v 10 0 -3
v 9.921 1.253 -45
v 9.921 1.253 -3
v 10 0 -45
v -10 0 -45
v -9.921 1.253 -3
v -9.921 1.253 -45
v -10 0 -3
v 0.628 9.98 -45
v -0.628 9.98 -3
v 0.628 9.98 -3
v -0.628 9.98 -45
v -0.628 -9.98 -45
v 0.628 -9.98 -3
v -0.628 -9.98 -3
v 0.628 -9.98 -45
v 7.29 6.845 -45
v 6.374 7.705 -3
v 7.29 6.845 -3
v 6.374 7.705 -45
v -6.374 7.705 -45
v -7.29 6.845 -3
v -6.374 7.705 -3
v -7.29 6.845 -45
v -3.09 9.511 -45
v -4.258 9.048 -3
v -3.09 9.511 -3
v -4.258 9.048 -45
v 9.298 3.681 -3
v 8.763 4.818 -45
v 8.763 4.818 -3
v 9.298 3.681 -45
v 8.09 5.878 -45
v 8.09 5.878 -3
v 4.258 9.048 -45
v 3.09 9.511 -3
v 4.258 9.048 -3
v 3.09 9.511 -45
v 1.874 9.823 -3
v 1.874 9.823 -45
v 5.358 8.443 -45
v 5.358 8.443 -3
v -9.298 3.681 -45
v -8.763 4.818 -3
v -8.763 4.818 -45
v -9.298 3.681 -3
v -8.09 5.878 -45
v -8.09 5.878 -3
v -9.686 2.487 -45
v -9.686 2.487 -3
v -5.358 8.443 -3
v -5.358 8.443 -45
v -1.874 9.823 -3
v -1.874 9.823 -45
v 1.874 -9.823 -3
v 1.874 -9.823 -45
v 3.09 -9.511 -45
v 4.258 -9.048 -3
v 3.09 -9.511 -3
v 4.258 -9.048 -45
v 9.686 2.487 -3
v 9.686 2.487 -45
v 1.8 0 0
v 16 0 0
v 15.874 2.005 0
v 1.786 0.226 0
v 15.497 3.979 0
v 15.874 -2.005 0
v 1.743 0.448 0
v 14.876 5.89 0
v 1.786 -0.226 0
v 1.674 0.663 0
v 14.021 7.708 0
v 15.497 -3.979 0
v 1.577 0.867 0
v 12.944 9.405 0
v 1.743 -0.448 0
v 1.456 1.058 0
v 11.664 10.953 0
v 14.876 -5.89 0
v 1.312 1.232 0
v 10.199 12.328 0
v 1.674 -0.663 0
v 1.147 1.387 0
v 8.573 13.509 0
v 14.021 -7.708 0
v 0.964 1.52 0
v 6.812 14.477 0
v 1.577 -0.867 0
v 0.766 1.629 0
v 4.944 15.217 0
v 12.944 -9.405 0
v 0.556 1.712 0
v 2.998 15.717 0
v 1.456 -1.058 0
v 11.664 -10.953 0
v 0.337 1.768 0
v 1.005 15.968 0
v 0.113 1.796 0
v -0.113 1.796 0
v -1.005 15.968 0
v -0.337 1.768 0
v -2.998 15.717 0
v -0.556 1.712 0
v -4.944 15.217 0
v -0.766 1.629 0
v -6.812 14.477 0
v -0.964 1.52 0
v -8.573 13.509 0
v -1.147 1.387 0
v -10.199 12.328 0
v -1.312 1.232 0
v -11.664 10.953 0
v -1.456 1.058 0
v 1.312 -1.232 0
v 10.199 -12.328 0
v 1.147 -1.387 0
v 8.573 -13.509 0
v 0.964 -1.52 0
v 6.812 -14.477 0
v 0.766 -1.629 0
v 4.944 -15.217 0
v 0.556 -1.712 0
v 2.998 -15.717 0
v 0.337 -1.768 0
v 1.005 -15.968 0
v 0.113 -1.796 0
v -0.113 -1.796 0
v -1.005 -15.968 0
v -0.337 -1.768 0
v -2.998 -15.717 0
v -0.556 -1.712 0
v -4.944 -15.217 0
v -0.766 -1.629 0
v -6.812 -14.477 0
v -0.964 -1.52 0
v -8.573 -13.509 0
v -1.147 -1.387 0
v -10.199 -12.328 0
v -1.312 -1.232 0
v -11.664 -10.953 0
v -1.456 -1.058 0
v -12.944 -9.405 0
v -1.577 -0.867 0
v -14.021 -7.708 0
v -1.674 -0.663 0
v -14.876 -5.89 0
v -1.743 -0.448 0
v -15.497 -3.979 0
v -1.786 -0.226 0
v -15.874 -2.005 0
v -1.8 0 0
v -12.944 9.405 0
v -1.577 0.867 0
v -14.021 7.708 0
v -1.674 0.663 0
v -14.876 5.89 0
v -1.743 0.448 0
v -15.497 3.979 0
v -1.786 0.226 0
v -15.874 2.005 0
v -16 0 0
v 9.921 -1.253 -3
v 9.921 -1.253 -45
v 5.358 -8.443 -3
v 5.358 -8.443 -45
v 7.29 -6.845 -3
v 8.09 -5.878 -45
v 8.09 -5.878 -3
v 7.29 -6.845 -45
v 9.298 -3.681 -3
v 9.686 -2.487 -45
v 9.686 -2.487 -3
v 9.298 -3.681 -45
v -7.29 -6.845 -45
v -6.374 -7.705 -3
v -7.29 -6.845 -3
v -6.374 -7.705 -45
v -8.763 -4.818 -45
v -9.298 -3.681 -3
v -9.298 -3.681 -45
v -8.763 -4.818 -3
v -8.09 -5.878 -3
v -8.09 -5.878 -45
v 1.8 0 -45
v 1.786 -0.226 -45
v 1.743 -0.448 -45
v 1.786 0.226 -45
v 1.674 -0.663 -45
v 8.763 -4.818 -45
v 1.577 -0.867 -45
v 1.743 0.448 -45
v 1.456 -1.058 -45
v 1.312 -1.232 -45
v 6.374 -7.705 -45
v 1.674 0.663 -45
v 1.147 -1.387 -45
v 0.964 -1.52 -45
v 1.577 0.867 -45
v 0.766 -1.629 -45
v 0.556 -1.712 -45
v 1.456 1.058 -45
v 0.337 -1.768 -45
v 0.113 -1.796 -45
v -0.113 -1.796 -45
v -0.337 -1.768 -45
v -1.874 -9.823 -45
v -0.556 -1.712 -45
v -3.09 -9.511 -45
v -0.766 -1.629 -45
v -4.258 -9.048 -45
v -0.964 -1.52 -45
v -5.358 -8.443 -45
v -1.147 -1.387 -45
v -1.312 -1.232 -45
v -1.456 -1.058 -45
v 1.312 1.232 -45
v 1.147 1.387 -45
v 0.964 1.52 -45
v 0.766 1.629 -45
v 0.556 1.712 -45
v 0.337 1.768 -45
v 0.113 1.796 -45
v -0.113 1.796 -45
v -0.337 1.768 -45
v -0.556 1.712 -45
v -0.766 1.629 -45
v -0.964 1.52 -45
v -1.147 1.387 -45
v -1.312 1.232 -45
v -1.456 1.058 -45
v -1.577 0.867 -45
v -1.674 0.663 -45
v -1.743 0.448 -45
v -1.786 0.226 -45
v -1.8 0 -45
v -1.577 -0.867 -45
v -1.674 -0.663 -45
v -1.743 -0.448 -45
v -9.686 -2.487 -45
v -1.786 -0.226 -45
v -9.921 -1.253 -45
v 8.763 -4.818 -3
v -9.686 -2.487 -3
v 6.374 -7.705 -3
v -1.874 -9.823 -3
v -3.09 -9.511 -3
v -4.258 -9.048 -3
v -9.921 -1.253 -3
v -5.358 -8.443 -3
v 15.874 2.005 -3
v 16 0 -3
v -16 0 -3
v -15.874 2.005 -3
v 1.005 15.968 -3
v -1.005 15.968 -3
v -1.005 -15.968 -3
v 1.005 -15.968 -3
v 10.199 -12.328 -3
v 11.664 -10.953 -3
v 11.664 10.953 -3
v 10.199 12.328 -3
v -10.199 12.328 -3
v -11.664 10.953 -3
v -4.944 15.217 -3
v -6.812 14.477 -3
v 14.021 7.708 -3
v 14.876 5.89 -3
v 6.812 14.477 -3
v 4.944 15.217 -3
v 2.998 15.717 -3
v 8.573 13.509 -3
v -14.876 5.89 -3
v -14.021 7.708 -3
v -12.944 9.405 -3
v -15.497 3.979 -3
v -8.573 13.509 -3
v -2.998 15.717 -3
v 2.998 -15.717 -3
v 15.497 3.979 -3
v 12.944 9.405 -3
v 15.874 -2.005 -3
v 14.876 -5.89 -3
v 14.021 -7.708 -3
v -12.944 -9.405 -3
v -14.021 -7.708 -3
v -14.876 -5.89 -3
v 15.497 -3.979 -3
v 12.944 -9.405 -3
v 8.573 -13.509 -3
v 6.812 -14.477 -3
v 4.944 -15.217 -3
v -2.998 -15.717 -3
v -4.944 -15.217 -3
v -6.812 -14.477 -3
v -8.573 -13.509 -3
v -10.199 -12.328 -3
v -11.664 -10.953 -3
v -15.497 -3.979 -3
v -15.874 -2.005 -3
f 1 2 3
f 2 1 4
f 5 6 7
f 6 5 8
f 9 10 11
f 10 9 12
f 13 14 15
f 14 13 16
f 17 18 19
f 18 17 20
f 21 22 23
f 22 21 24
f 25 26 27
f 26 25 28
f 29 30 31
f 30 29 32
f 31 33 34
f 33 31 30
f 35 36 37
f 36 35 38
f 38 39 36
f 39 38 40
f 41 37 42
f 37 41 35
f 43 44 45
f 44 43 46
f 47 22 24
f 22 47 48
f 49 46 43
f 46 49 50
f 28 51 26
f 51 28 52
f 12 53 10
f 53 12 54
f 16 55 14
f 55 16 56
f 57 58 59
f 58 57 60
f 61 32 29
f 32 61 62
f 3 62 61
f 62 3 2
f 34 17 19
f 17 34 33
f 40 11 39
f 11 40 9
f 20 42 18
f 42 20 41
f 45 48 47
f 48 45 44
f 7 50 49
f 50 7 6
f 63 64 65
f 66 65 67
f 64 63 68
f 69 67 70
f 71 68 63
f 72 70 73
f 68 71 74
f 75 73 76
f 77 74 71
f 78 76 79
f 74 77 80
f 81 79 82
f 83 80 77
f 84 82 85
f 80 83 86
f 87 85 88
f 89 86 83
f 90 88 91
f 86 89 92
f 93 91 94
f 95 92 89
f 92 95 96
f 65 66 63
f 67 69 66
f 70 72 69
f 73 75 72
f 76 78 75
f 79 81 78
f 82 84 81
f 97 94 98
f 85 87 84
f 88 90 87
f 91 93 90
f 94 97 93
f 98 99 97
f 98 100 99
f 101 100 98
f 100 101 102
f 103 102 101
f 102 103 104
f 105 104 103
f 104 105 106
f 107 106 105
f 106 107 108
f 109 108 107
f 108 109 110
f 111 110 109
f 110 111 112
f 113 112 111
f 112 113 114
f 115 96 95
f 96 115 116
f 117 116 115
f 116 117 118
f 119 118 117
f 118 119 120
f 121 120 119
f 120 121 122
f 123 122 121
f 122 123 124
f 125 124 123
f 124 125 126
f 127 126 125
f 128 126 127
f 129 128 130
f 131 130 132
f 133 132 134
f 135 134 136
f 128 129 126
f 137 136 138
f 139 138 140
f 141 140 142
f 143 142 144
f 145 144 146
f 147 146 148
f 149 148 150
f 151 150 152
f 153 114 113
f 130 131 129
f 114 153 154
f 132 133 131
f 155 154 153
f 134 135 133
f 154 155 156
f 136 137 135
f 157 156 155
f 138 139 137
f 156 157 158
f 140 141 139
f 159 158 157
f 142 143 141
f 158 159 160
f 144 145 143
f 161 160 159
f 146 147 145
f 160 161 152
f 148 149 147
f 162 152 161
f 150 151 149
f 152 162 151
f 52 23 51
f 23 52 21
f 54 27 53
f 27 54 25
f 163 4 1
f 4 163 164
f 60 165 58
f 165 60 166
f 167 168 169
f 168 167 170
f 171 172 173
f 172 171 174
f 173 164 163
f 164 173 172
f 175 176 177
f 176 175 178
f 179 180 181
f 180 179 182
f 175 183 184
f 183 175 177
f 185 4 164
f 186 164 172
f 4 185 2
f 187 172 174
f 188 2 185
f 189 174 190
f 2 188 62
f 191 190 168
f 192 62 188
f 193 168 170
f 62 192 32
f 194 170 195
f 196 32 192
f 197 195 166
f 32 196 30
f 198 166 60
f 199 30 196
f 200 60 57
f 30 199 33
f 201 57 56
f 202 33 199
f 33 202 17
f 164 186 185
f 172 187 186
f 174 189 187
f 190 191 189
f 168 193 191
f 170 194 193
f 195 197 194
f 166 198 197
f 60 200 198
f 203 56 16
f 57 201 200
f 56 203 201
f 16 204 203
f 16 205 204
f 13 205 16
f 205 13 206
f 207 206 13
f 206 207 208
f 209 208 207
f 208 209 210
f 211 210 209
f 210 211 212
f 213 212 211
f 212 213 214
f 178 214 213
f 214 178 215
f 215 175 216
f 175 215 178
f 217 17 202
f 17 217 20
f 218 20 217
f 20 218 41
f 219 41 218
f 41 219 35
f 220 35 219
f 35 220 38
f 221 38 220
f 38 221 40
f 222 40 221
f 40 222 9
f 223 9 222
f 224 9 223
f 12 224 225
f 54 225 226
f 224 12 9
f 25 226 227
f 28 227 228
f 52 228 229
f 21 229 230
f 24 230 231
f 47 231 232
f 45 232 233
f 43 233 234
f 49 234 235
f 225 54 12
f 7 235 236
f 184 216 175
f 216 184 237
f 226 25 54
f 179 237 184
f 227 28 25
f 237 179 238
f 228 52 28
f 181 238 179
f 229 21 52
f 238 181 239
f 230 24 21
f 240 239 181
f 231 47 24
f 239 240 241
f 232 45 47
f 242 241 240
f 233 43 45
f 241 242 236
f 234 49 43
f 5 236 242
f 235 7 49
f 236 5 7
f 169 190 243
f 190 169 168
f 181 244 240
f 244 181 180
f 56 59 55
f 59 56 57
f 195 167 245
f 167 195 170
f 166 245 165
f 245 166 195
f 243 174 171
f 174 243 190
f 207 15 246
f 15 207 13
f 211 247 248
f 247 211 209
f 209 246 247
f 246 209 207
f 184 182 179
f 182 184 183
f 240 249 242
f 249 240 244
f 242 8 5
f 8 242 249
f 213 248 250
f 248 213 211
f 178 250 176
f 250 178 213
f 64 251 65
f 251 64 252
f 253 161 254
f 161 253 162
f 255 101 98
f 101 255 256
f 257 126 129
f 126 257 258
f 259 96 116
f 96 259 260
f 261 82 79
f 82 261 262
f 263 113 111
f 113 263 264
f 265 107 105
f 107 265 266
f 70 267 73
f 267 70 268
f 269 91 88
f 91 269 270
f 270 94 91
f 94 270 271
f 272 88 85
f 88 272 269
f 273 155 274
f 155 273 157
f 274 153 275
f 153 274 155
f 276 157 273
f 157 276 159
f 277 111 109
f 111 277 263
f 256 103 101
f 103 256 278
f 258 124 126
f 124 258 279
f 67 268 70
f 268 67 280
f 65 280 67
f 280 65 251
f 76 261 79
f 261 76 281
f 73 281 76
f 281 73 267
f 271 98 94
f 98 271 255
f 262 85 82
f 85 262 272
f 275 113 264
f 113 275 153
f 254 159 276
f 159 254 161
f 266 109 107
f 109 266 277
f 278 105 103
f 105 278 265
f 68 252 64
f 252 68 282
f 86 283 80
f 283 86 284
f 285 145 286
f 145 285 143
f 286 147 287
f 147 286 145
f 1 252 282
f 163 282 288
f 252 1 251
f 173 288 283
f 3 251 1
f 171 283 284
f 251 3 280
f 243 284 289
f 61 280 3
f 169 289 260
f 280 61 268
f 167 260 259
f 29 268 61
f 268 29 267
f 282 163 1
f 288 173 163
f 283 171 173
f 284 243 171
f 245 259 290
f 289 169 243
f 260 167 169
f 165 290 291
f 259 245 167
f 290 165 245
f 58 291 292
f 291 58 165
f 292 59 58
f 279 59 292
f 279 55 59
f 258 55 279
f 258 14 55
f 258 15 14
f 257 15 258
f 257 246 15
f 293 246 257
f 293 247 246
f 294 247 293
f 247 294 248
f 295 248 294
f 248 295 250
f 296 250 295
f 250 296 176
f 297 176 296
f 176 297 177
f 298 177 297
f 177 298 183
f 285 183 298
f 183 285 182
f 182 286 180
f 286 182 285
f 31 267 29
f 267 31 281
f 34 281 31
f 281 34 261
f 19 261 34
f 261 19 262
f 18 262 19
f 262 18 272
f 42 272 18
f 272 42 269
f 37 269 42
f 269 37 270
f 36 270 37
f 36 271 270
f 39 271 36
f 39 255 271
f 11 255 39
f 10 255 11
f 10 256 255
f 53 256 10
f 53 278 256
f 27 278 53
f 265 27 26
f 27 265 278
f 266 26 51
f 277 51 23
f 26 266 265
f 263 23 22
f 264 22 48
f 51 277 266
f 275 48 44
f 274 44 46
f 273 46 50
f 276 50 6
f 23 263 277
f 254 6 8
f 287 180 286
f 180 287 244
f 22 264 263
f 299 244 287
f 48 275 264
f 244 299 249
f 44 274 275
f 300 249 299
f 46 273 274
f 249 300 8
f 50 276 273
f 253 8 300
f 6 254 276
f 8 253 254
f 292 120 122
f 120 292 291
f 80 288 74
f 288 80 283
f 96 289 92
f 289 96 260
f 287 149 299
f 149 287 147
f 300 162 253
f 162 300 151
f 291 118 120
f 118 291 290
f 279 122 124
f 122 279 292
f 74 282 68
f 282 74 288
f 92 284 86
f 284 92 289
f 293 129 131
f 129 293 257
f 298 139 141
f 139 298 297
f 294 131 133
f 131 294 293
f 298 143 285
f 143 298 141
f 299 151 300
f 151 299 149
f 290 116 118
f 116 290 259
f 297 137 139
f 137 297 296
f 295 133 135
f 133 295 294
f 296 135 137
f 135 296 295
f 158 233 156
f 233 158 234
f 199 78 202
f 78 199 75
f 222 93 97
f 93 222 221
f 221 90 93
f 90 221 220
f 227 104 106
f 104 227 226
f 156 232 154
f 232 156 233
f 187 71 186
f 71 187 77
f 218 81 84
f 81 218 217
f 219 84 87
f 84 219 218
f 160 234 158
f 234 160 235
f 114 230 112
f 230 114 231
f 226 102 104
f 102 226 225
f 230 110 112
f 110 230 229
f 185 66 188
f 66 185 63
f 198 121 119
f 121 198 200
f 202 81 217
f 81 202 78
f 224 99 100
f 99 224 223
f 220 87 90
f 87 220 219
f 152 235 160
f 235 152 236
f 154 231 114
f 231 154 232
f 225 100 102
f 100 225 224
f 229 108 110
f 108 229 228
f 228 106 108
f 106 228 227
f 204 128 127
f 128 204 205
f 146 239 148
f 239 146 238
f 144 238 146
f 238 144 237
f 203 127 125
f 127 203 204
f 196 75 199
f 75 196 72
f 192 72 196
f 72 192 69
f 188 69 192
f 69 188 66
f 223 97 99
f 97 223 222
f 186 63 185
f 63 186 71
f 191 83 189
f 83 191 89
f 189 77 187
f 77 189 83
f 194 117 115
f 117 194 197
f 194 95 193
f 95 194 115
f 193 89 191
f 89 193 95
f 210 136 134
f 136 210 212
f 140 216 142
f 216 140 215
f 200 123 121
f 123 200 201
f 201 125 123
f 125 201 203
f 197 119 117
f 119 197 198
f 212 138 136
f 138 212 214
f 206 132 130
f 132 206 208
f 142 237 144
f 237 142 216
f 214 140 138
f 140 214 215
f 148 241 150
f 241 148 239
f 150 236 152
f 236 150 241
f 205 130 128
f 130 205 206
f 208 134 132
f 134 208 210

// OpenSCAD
$fn = 50;


difference() {
	union() {
		translate(v = [0, 0, -45.0000000000]) {
			cylinder(h = 45, r = 10.0000000000);
		}
		translate(v = [0, 0, -3.0000000000]) {
			cylinder(h = 3, r = 16.0000000000);
		}
	}
	union() {
		#translate(v = [0, 0, -45]) {
			cylinder(h = 45, r = 1.8000000000);
		}
	}
}
